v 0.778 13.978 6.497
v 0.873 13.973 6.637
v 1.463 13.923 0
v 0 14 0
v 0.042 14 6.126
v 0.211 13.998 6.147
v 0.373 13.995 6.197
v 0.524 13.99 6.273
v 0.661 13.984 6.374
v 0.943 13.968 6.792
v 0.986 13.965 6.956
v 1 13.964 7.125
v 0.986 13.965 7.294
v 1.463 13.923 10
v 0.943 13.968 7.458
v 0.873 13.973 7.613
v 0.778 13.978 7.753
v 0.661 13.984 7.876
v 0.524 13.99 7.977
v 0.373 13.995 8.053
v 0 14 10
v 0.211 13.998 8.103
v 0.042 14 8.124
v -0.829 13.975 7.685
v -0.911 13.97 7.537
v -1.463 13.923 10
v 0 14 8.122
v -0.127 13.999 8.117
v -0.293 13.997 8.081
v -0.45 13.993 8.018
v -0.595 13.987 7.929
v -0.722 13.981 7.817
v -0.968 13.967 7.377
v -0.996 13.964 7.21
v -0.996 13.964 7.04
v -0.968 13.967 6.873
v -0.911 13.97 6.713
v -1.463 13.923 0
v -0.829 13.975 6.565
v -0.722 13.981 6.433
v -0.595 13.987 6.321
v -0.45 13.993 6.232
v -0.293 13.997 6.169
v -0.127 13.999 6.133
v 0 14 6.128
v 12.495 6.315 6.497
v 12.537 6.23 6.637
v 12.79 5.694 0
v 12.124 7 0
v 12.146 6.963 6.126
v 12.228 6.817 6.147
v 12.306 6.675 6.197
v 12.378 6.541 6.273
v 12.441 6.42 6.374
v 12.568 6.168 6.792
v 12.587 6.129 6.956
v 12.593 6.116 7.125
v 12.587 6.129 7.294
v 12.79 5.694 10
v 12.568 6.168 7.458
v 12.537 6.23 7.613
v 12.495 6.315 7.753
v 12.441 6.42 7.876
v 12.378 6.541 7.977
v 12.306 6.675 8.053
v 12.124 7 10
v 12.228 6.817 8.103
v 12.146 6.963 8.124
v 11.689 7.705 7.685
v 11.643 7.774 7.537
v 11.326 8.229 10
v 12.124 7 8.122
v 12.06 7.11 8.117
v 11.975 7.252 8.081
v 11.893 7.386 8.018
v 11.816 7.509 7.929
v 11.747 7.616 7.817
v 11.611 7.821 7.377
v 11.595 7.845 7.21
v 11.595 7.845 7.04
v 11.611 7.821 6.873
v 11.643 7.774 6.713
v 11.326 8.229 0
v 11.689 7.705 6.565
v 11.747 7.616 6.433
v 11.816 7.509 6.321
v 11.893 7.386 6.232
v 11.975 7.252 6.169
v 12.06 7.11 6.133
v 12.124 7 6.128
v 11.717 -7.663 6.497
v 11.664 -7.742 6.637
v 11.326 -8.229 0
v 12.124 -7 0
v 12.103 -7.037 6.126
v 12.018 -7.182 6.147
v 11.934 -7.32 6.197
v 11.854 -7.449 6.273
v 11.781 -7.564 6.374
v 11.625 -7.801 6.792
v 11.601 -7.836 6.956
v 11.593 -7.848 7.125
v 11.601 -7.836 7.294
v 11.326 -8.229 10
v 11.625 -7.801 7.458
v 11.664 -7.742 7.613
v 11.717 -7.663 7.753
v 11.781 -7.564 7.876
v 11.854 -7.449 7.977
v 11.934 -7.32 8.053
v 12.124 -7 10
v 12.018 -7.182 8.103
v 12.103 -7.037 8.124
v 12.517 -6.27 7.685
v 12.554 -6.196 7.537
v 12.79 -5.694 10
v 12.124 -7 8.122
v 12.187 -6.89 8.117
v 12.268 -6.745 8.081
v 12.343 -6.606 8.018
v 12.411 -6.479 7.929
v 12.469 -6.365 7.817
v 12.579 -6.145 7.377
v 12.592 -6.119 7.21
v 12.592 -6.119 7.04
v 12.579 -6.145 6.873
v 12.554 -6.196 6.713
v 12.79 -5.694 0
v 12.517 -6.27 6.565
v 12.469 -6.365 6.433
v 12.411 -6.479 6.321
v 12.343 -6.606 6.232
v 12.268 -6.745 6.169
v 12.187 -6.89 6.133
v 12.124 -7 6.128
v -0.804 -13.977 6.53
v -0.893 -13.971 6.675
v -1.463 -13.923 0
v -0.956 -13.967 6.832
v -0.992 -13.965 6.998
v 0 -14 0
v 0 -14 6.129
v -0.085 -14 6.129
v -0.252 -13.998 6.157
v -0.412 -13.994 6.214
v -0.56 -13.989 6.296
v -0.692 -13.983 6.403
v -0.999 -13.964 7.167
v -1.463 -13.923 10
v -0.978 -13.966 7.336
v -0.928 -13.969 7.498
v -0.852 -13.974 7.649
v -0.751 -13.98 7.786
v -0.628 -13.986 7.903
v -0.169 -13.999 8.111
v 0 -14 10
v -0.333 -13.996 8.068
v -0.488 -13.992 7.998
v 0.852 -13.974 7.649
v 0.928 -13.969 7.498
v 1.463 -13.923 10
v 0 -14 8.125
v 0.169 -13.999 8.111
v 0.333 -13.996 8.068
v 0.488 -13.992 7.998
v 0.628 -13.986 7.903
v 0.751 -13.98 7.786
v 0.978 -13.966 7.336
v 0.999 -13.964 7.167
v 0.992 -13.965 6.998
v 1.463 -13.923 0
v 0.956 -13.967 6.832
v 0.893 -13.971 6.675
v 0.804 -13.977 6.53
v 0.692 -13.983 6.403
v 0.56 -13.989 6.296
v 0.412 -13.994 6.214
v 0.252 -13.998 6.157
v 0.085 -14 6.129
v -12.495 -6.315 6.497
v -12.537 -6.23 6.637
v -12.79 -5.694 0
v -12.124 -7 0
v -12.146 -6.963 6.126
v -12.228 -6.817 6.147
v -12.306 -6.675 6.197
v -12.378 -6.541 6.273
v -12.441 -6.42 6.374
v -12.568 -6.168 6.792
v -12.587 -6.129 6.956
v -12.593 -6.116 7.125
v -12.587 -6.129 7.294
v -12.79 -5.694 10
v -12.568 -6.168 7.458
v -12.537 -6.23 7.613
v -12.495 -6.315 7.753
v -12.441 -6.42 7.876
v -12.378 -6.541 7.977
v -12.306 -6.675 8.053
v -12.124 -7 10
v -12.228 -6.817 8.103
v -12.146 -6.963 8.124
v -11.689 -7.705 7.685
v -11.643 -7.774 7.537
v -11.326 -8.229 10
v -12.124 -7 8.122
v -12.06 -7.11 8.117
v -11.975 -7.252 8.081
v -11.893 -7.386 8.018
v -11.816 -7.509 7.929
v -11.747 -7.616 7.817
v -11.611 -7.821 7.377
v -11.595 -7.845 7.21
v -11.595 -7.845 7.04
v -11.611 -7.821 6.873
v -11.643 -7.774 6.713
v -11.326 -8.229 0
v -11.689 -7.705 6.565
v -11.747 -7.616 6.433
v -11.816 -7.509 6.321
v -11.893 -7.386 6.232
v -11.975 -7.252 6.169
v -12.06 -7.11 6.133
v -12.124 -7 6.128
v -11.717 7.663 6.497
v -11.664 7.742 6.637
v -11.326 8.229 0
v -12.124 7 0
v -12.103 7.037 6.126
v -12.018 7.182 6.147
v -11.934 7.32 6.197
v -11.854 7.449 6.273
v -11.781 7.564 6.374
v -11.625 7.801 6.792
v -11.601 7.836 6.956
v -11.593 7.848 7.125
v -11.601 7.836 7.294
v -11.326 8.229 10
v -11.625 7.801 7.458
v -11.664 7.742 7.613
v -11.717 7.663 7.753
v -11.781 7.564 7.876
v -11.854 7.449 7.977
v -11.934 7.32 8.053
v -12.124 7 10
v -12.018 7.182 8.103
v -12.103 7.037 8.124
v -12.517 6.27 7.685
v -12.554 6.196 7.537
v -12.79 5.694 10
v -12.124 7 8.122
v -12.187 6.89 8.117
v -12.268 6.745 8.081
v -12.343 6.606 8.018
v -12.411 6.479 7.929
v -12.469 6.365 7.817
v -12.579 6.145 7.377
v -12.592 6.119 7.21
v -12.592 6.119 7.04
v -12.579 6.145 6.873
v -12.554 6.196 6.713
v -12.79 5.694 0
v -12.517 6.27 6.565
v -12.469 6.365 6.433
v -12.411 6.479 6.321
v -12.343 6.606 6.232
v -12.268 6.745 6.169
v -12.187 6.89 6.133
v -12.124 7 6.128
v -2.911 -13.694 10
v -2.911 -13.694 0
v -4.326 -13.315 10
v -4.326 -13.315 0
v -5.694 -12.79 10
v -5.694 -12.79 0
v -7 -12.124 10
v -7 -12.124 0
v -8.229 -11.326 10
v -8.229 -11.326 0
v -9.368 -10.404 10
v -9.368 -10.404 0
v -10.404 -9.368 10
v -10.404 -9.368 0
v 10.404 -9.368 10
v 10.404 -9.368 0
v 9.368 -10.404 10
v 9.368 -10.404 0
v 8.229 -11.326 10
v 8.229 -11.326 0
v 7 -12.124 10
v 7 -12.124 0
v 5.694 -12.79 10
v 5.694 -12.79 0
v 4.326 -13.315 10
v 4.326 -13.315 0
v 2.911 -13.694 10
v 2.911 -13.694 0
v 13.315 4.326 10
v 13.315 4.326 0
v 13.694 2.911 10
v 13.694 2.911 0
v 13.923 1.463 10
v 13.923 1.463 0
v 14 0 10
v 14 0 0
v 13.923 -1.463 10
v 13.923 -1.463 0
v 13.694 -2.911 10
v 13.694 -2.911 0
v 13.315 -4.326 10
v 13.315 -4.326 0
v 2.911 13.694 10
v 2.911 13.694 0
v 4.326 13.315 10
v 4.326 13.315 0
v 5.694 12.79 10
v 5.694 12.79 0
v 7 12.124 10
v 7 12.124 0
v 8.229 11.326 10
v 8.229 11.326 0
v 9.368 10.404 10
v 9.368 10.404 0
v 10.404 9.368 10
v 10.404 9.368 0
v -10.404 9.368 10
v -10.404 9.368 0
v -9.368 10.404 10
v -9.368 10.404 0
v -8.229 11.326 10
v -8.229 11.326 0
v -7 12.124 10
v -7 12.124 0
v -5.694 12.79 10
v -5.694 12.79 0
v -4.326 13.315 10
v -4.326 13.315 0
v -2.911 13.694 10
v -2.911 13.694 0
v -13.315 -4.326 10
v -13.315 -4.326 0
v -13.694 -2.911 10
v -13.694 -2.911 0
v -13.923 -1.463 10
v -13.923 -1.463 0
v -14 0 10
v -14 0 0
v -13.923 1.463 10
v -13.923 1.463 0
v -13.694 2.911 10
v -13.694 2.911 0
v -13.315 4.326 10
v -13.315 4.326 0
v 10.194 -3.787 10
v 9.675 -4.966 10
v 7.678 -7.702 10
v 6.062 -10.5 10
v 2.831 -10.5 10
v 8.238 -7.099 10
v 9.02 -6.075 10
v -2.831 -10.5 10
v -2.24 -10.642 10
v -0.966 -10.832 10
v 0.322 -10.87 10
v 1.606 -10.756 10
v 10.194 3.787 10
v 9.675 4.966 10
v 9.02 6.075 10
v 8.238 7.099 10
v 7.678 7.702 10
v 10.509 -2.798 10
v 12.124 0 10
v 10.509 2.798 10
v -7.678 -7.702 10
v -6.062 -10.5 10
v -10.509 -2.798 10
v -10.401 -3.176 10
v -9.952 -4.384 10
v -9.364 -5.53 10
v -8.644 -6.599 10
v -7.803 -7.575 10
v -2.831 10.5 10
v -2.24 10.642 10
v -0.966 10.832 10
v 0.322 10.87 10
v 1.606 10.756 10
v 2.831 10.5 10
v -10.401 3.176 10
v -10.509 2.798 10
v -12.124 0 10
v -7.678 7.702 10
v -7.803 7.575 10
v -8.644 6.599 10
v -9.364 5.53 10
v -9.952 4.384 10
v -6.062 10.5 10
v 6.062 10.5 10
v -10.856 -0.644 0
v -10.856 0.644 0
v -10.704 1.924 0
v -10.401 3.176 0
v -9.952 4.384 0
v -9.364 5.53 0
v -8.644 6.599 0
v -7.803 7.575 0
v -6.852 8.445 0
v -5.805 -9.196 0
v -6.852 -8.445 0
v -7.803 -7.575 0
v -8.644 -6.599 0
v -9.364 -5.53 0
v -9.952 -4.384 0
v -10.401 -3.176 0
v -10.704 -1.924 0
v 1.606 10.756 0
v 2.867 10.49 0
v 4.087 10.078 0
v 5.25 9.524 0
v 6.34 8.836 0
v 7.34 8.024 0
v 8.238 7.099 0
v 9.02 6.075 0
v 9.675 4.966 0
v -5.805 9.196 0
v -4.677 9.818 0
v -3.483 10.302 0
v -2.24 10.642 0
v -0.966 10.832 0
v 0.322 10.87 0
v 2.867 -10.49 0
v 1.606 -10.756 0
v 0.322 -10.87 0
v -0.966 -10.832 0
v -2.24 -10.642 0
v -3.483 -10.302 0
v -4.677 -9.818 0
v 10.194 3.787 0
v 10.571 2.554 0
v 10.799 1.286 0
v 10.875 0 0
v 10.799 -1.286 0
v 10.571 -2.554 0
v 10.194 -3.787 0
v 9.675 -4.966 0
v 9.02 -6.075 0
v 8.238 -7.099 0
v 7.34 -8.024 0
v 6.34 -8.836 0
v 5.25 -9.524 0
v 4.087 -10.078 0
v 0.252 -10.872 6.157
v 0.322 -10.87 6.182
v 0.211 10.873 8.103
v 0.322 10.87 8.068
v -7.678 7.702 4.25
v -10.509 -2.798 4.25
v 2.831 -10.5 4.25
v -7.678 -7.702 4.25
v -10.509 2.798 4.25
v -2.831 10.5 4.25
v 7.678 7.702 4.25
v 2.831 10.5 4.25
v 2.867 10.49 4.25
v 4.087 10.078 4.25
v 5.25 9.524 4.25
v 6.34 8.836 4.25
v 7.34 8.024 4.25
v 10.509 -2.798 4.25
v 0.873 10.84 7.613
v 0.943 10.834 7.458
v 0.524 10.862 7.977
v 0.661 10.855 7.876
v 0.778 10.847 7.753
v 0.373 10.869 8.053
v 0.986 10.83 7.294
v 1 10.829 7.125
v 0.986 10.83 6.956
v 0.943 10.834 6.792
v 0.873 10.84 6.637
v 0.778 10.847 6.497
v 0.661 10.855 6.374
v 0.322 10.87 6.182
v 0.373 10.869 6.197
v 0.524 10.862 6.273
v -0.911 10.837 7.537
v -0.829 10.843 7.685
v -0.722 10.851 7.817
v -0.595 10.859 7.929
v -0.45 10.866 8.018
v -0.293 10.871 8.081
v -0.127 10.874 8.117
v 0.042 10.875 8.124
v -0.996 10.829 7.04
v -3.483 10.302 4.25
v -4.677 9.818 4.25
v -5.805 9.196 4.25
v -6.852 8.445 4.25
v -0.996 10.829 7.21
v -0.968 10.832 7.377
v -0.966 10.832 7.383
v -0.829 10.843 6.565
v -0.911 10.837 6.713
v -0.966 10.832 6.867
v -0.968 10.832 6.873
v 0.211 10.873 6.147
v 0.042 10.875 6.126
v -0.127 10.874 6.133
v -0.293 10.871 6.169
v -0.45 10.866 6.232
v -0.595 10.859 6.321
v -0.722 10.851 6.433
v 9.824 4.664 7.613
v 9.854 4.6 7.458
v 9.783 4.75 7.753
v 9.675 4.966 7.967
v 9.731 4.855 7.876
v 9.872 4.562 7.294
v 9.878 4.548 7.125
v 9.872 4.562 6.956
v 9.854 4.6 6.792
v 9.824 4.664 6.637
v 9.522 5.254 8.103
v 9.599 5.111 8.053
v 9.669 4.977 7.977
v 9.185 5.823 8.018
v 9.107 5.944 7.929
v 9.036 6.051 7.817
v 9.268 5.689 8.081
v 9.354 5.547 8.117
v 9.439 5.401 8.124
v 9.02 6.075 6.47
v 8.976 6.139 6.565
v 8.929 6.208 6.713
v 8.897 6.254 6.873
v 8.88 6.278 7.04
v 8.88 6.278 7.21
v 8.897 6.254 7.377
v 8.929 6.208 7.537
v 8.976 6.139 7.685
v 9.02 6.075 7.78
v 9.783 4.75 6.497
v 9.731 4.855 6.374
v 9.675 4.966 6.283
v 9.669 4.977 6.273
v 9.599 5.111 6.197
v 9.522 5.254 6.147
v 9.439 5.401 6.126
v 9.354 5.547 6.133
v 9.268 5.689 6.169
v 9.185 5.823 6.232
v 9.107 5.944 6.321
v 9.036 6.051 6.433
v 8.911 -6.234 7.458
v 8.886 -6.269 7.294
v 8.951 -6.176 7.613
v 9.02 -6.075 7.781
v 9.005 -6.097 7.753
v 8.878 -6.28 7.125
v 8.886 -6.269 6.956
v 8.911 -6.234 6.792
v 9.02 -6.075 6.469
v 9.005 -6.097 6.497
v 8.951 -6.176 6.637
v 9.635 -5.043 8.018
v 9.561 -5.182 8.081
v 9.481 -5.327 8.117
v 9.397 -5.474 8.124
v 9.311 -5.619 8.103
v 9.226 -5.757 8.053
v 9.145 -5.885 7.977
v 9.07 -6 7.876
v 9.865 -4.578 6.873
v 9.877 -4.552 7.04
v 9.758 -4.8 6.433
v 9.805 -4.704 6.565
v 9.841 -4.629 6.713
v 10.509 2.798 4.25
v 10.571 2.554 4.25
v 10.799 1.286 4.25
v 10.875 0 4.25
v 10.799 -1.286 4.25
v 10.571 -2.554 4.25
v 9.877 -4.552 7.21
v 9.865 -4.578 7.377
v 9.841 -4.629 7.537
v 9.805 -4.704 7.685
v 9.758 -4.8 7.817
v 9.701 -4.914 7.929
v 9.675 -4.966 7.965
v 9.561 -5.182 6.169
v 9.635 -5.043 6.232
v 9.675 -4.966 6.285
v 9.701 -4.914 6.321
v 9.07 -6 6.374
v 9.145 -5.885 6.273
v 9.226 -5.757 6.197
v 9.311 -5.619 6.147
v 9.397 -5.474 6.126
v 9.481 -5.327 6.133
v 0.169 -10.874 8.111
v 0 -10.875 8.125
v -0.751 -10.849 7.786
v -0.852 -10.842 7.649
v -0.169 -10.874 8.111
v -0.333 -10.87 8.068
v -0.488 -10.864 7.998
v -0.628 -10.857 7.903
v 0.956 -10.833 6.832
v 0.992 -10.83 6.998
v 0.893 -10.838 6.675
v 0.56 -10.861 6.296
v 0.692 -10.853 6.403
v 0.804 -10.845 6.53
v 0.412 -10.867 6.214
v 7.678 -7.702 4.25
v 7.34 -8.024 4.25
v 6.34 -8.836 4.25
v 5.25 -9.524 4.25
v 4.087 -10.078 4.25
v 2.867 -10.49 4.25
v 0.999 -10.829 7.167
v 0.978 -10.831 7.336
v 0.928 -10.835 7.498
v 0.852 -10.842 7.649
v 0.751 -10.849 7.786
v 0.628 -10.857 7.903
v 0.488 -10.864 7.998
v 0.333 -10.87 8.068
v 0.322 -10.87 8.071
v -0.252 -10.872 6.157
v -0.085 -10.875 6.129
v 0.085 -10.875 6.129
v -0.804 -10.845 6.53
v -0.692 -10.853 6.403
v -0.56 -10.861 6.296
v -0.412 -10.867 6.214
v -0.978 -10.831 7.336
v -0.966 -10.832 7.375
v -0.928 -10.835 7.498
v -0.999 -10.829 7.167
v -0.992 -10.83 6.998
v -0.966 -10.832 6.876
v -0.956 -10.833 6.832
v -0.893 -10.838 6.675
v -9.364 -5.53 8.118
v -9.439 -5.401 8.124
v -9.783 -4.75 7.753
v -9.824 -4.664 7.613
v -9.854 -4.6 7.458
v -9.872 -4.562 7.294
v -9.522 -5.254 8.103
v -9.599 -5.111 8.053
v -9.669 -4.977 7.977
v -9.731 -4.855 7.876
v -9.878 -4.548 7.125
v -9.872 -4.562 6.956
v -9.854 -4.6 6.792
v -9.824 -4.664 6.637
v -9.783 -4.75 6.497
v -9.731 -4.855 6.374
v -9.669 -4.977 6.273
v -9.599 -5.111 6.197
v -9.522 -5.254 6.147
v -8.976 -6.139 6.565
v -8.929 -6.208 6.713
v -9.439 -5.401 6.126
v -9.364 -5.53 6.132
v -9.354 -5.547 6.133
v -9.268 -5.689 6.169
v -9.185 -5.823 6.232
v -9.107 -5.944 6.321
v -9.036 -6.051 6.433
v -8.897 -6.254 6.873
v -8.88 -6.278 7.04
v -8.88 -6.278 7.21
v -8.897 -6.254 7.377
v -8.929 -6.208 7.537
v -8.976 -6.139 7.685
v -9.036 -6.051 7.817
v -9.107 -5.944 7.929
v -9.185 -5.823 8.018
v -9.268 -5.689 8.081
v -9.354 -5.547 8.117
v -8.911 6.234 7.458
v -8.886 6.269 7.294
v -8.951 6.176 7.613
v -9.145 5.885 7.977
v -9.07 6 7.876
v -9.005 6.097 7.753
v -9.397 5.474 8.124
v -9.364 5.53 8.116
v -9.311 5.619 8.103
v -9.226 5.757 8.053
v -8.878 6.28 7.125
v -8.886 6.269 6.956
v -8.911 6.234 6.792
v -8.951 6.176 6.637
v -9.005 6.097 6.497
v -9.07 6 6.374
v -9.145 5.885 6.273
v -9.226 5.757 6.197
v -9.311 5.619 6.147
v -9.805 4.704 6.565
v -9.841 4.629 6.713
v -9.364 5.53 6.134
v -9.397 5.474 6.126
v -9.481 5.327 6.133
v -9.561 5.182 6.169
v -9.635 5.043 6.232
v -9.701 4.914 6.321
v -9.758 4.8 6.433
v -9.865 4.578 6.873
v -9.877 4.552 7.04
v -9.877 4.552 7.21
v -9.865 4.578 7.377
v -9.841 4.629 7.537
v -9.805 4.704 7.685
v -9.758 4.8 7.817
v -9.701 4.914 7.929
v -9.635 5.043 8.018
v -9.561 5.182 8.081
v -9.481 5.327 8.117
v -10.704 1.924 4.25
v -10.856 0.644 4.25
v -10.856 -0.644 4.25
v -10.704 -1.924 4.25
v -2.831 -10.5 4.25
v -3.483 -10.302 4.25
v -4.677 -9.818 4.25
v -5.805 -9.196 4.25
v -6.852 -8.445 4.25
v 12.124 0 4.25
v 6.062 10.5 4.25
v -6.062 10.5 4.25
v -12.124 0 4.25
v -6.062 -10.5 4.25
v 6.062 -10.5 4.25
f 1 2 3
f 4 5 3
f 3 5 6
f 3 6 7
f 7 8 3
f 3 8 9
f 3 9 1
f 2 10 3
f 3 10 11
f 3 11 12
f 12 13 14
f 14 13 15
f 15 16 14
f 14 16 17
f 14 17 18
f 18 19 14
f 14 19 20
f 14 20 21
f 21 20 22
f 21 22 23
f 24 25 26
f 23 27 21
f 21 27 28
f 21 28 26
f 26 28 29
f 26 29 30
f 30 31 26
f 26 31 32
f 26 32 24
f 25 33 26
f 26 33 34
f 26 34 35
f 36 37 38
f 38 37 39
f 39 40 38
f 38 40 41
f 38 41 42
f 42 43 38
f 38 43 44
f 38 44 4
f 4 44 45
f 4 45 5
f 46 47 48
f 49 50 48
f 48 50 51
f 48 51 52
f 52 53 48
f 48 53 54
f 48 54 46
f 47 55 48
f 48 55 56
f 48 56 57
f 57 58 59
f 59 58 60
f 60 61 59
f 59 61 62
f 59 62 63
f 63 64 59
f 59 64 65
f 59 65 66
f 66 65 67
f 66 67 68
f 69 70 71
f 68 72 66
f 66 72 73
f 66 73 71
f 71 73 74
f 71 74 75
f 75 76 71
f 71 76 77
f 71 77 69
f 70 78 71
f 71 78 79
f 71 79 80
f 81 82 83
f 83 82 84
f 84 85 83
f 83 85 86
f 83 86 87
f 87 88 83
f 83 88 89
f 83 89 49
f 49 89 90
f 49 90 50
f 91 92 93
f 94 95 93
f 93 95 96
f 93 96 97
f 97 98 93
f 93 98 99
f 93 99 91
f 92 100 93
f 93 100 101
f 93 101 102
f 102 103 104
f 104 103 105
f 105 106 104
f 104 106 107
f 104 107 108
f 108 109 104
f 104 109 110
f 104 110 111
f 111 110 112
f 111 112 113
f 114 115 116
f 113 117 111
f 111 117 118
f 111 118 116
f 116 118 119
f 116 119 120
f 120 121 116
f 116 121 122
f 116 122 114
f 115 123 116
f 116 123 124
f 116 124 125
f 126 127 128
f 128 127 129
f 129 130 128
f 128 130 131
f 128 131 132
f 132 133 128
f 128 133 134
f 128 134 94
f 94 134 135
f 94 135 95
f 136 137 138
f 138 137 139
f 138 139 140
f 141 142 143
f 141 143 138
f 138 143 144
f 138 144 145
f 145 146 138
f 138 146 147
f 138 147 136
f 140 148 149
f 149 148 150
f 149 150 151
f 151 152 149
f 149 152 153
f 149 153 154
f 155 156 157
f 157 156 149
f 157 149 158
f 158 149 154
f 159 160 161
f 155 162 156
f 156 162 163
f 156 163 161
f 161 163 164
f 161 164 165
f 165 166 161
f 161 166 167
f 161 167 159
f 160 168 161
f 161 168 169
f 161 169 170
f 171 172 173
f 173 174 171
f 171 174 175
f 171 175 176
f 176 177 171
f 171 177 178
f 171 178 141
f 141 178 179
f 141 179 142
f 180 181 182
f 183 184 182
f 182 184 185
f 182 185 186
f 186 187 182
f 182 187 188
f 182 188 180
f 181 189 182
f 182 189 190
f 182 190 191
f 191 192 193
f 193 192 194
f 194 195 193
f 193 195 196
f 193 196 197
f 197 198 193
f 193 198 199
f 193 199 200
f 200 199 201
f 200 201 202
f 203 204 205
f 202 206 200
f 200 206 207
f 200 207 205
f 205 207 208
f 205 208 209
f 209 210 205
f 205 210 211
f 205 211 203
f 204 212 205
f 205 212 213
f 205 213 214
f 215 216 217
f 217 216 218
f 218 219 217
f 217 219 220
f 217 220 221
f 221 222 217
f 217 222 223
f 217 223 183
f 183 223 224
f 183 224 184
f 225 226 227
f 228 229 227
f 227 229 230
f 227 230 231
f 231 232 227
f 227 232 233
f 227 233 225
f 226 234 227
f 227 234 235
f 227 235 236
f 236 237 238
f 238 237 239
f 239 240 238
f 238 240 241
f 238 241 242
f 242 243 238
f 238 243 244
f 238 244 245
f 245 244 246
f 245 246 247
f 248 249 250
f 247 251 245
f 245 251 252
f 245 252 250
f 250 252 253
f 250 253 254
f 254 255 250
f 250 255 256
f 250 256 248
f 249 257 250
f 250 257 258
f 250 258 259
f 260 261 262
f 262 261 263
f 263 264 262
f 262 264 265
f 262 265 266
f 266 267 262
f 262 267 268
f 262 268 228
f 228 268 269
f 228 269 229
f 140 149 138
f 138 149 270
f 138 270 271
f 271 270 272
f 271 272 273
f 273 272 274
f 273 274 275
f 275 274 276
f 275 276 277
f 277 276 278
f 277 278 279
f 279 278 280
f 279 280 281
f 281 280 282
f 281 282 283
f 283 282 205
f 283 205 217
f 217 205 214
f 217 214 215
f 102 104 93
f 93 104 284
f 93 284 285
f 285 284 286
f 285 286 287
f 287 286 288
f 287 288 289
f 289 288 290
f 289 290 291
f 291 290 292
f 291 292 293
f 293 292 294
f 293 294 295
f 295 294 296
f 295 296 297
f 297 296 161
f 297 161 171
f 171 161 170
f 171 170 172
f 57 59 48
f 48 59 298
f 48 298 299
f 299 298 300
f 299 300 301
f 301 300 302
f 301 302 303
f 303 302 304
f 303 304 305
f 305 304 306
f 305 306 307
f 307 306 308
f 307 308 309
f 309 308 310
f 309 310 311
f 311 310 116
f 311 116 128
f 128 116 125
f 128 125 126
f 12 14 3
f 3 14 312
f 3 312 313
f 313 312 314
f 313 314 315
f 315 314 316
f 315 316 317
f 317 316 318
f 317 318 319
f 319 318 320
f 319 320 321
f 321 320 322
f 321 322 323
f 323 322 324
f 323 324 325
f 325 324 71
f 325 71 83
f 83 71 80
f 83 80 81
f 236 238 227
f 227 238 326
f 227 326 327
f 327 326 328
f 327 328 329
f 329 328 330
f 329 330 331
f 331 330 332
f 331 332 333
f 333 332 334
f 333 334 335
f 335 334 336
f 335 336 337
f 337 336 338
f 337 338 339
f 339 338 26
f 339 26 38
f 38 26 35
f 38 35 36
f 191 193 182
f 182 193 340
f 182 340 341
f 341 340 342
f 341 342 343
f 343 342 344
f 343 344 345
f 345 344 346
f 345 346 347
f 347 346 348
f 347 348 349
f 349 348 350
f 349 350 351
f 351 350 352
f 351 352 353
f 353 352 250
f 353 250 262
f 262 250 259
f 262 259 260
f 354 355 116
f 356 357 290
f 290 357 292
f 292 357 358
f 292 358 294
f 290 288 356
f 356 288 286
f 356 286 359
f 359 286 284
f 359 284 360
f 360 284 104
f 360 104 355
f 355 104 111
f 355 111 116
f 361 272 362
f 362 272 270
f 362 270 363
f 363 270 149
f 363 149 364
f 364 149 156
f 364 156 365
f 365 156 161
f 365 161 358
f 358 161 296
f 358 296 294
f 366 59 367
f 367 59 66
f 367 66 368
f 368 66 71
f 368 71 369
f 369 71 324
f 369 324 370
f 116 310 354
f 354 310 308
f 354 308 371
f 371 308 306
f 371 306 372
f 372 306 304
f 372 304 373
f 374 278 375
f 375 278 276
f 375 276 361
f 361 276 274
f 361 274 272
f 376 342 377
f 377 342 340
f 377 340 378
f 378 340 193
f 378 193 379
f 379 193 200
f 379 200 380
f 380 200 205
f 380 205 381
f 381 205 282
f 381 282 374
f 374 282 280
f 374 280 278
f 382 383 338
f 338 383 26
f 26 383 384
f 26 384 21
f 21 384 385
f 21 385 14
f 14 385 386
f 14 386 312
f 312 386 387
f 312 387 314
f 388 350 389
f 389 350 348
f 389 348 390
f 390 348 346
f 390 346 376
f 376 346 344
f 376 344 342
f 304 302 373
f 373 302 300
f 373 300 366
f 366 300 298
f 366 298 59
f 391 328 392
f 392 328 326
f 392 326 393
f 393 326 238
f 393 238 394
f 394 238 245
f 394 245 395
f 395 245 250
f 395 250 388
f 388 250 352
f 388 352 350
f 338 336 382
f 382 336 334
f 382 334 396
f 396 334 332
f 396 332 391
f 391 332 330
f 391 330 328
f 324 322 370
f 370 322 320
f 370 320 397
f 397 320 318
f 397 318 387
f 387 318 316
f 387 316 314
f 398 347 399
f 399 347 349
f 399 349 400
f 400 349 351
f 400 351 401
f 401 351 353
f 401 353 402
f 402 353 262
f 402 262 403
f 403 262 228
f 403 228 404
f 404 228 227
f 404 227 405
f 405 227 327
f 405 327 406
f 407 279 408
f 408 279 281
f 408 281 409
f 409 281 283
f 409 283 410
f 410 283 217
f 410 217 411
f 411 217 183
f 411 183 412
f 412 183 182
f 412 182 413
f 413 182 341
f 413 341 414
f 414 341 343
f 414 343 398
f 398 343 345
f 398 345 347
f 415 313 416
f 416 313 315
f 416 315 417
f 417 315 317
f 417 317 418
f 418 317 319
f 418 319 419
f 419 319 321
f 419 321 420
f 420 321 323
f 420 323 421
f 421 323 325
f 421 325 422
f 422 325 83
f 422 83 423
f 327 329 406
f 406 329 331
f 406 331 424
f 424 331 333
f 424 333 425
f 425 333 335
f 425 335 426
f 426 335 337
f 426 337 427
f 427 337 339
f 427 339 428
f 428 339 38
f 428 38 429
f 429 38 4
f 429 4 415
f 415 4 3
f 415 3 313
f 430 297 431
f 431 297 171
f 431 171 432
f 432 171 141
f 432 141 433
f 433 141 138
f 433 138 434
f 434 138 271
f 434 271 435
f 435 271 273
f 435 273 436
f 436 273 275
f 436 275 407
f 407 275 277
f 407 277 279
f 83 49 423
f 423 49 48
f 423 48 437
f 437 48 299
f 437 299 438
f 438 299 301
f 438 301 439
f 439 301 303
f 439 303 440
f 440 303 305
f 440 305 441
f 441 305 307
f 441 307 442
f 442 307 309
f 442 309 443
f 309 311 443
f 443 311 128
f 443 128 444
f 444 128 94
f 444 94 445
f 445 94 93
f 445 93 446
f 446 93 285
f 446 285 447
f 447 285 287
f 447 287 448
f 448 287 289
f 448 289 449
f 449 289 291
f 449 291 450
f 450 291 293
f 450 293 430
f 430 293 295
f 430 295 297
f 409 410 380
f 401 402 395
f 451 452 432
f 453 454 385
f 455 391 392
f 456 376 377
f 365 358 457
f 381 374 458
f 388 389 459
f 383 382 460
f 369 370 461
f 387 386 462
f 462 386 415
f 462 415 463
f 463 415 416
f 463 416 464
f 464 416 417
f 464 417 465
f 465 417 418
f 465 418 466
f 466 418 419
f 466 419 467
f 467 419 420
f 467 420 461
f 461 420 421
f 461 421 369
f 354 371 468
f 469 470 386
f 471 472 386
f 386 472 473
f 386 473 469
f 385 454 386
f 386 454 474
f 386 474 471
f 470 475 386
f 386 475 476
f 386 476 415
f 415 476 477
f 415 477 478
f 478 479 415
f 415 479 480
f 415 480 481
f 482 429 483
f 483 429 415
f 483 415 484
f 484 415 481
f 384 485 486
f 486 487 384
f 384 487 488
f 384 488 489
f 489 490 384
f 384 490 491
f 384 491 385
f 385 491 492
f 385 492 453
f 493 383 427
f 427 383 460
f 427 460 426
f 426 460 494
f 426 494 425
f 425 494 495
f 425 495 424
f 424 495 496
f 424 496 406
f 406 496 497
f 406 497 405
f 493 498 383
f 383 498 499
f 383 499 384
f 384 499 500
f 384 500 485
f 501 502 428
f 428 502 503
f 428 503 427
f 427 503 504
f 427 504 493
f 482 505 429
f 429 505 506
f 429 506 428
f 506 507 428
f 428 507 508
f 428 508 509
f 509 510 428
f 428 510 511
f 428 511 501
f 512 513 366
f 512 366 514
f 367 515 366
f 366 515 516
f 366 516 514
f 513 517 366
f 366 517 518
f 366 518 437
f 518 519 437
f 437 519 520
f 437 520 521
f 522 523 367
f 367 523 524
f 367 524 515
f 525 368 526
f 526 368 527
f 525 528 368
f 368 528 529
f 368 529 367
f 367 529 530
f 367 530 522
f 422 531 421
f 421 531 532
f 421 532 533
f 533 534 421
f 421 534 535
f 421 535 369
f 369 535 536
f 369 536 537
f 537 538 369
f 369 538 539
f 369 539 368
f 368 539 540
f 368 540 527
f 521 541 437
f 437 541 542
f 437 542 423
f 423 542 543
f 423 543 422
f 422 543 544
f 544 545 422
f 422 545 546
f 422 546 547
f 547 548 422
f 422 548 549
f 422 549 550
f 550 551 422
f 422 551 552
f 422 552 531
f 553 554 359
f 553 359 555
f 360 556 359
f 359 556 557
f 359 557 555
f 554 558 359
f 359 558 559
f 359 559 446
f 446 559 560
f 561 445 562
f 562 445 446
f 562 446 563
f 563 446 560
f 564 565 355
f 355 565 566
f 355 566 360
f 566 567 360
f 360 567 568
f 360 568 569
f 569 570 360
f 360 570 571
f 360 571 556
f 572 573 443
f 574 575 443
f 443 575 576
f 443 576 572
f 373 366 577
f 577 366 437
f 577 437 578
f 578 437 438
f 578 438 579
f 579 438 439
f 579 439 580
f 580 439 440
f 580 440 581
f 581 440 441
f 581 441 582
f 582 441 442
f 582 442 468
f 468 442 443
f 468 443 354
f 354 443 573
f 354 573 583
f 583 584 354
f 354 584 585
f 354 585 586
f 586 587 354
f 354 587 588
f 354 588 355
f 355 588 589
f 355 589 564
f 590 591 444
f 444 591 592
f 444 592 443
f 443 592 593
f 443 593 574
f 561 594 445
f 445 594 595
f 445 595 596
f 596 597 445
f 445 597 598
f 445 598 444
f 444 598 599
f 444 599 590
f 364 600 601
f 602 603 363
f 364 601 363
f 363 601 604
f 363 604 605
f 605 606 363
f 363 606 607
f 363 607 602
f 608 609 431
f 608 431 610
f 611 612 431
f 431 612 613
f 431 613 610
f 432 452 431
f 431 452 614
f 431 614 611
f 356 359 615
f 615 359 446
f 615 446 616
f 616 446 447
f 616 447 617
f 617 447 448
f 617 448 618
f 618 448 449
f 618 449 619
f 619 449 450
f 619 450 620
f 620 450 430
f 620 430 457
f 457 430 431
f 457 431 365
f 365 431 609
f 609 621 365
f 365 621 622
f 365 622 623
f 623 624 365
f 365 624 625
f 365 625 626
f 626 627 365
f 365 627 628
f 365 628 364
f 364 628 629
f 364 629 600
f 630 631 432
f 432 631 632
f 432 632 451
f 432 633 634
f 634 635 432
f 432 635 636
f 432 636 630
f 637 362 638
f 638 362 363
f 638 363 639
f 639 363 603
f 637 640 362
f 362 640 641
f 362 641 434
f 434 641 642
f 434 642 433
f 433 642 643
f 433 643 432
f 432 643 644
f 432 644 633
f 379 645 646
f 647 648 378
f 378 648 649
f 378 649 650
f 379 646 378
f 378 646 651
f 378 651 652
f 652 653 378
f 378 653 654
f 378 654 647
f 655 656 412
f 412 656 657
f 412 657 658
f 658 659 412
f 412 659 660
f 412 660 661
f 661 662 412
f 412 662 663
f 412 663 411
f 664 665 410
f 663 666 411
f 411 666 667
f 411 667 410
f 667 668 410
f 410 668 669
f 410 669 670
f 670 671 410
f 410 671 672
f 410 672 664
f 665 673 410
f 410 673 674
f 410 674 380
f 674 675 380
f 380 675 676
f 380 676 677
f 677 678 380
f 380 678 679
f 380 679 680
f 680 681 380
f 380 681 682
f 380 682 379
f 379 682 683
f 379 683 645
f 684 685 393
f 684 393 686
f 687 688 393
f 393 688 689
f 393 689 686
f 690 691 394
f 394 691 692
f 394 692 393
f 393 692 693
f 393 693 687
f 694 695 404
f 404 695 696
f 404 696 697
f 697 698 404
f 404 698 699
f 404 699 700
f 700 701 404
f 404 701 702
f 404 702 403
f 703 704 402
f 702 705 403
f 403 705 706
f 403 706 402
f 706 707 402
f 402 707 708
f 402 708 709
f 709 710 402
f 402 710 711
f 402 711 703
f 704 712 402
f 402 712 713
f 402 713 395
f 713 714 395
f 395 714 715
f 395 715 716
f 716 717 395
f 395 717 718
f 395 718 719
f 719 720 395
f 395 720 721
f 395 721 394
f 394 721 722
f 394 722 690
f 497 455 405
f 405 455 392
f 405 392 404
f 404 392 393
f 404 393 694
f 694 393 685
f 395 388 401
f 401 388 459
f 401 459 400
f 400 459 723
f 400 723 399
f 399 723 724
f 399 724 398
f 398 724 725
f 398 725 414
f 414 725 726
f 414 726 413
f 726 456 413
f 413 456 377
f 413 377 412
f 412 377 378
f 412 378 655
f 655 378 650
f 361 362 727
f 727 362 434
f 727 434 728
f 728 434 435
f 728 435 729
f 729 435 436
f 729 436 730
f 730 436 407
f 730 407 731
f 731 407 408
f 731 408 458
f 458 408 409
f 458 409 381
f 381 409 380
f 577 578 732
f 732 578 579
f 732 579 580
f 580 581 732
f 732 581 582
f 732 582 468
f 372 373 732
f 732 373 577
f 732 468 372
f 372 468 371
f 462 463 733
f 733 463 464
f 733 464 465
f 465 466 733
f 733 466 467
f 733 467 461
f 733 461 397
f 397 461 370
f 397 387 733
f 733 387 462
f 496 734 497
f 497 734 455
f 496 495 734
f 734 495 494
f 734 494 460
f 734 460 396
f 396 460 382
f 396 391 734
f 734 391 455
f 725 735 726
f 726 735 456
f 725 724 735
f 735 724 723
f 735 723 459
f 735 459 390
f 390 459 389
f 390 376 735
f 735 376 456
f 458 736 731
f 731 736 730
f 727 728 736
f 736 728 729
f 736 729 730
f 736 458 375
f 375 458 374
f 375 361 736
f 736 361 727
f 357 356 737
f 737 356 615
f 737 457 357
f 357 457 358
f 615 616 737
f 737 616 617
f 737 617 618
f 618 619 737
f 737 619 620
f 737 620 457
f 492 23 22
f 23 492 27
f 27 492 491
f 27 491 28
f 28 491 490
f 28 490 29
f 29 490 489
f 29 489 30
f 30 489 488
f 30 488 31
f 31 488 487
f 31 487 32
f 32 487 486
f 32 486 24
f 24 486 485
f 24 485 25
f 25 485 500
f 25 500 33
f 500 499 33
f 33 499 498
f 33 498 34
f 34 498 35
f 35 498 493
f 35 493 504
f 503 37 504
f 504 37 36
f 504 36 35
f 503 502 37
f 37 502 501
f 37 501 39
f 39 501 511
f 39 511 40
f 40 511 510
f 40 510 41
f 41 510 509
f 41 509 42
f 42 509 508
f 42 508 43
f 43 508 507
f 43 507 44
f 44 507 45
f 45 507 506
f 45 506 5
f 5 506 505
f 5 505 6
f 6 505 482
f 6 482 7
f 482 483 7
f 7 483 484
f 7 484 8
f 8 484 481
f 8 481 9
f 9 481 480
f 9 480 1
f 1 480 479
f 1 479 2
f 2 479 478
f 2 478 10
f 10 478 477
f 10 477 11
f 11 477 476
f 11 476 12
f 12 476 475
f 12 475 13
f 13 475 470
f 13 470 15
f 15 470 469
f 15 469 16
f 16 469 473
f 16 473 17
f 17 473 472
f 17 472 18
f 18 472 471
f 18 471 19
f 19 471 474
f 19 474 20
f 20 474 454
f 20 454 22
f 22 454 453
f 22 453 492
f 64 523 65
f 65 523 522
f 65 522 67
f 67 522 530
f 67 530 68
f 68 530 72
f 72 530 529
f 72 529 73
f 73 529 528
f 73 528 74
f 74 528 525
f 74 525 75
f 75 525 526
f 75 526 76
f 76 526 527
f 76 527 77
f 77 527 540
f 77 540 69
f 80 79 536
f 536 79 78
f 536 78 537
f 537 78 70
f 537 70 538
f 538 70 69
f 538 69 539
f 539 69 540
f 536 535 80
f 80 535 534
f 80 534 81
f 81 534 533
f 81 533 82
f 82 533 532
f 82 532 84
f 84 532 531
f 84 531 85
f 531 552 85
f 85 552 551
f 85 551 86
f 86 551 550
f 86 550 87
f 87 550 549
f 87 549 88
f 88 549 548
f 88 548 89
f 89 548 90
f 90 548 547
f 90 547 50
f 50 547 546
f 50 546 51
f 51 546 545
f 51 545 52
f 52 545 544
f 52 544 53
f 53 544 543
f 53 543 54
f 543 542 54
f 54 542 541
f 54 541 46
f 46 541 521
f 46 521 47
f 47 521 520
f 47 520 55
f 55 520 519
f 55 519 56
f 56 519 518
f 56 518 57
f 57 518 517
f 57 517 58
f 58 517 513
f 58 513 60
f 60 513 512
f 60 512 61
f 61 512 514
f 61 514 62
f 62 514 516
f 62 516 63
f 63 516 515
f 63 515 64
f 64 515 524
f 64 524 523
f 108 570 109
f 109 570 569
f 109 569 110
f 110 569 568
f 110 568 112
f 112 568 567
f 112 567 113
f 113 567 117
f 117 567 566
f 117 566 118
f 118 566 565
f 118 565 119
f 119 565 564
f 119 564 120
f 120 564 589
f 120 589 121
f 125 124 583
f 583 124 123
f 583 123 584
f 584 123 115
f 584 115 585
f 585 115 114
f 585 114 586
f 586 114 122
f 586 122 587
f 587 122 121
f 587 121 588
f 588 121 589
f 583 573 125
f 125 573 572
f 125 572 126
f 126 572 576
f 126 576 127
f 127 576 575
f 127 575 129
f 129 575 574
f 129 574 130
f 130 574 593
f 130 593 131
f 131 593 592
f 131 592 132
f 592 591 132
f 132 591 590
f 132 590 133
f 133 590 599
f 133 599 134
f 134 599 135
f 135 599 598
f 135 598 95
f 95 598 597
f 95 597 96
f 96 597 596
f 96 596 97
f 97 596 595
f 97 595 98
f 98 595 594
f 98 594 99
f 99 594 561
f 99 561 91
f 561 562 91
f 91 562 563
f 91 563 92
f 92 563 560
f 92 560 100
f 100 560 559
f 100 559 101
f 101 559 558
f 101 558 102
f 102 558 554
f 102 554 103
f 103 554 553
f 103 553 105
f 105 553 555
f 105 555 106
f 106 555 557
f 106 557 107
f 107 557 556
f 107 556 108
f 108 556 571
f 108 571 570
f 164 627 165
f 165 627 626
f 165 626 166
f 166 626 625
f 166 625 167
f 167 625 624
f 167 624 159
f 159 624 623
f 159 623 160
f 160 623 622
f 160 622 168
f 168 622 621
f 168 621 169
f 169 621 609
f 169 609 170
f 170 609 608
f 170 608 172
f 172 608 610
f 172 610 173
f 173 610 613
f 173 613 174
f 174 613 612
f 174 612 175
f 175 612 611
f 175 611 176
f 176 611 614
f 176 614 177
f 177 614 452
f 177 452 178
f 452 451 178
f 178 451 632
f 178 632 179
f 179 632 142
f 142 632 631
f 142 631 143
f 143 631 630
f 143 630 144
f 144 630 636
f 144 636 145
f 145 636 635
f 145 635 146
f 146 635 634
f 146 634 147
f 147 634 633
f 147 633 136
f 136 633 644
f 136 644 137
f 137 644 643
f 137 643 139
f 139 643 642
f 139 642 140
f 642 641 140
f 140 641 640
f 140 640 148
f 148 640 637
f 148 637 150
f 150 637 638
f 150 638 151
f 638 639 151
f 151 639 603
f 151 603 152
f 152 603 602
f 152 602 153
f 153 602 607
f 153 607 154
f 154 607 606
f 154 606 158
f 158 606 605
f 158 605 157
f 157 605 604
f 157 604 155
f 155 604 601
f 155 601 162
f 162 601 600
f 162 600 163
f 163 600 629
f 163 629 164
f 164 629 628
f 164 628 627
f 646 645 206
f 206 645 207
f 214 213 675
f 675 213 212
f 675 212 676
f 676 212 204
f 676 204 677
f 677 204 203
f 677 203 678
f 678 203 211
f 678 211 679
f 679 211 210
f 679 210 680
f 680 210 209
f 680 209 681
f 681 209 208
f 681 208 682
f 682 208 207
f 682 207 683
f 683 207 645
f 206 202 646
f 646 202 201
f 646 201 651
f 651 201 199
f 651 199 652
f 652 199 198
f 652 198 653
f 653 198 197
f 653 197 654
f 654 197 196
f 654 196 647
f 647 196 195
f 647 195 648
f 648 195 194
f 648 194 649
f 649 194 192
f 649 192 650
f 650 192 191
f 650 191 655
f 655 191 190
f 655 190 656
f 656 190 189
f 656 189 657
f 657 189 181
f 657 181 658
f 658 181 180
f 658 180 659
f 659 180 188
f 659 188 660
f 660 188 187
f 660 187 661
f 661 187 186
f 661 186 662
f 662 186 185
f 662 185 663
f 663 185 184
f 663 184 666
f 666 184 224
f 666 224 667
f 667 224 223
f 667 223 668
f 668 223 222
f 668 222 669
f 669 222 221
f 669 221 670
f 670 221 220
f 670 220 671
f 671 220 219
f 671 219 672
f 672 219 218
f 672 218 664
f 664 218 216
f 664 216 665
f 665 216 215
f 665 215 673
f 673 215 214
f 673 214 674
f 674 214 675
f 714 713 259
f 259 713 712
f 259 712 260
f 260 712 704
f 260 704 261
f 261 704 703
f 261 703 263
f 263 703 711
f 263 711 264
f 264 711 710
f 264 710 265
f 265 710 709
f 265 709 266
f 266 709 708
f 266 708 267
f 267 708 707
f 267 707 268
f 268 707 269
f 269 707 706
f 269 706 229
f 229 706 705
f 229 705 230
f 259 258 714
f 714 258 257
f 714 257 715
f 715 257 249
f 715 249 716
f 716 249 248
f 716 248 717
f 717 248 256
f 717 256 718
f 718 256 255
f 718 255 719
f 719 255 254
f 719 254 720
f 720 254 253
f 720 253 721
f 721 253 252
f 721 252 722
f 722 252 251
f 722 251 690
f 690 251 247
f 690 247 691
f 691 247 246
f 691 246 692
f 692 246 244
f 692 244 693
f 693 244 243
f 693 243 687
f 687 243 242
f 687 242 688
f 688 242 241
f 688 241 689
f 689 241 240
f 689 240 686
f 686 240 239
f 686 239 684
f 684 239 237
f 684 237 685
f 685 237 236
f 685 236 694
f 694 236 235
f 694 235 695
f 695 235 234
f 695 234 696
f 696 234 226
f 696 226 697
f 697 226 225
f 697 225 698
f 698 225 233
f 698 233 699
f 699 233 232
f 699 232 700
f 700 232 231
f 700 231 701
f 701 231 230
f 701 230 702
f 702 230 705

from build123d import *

# Parameters (mm, degrees)
SKETCH1_R               = 14
BOSS_EXTRUDE1_DEPTH     = 10
CUT_EXTRUDE1_REACH      = 24.181
SKETCH2_R               = 10.875
CUT_EXTRUDE2_DEPTH      = 5.75
CUT_EXTRUDE3_REACH      = 31.937
CUT_EXTRUDE3_END_RADIUS = 14
SKETCH4_R               = 1
CUT_EXTRUDE4_REACH      = 33.684
CUT_EXTRUDE4_END_RADIUS = 14
SKETCH5_R               = 1
CUT_EXTRUDE5_REACH      = 33.684
CUT_EXTRUDE5_END_RADIUS = 14
SKETCH6_R               = 1
CUT_EXTRUDE6_REACH      = 31.937
CUT_EXTRUDE6_END_RADIUS = 14
SKETCH7_R               = 1
CUT_EXTRUDE7_REACH      = 33.684
CUT_EXTRUDE7_END_RADIUS = 14
SKETCH8_R               = 1
CUT_EXTRUDE8_REACH      = 33.684
CUT_EXTRUDE8_END_RADIUS = 14
SKETCH9_R               = 1


with BuildPart() as part:
    # Sketch1 → Boss-Extrude1 (new body)
    with BuildSketch(Plane.XY):
        Circle(SKETCH1_R)
    extrude(amount=BOSS_EXTRUDE1_DEPTH)

    # Sketch2 → Cut-Extrude1 (cut, up to next)
    with BuildSketch(Plane.XY.offset(10), mode=Mode.PRIVATE) as cut_extrude1_sk1:
        Circle(SKETCH2_R)
    cut_extrude1_tool1 = extrude(cut_extrude1_sk1.sketch, amount=-CUT_EXTRUDE1_REACH, mode=Mode.PRIVATE) & part.part
    add(cut_extrude1_tool1.solids().sort_by_distance((0, 0, 10))[0], mode=Mode.SUBTRACT)

    # Sketch3 → Cut-Extrude2 (cut)
    with BuildSketch(Plane.XY.offset(10)):
        Polygon((12.124355653, 0), (6.062177826, 10.5), (-6.062177826, 10.5), (-12.124355653, 0), (-6.062177826, -10.5), (6.062177826, -10.5), align=None)
    extrude(amount=-CUT_EXTRUDE2_DEPTH, mode=Mode.SUBTRACT)

    # Cut-Extrude3: up to this cylinder (the profile starts inside it)
    cut_extrude3_end = Plane(origin=(0, 0, 7.125), z_dir=(0, 0, -1)) * Cylinder(CUT_EXTRUDE3_END_RADIUS, 92.874, mode=Mode.PRIVATE)
    # Sketch4 → Cut-Extrude3 (cut, up to the surface)
    with BuildSketch(Plane(origin=(0, 10.5, 0), x_dir=(-1, 0, 0), z_dir=(0, -1, 0)), mode=Mode.PRIVATE) as cut_extrude3_sk1:
        with Locations(Location((0, -7.125, 0), (0, 0, 180))):
            Circle(SKETCH4_R)
    cut_extrude3_tool1 = extrude(cut_extrude3_sk1.sketch, amount=-CUT_EXTRUDE3_REACH, mode=Mode.PRIVATE) & cut_extrude3_end
    add(cut_extrude3_tool1.solids().sort_by_distance((0, 10.5, 7.125))[0], mode=Mode.SUBTRACT)

    # Cut-Extrude4: up to this cylinder (the profile starts inside it)
    cut_extrude4_end = Plane(origin=(0, 0, 7.125), z_dir=(0, 0, -1)) * Cylinder(CUT_EXTRUDE4_END_RADIUS, 96.368, mode=Mode.PRIVATE)
    # Sketch5 → Cut-Extrude4 (cut, up to the surface)
    with BuildSketch(Plane(origin=(9.09326674, 5.25, 0), x_dir=(0, 0, 1), z_dir=(-0.8660254037844386, -0.4999999999999999, 0)), mode=Mode.PRIVATE) as cut_extrude4_sk1:
        with Locations(Location((7.125, 0, 0), (0, 0, 270))):
            Circle(SKETCH5_R)
    cut_extrude4_tool1 = extrude(cut_extrude4_sk1.sketch, amount=-CUT_EXTRUDE4_REACH, mode=Mode.PRIVATE) & cut_extrude4_end
    add(cut_extrude4_tool1.solids().sort_by_distance((9.093267, 5.25, 7.125))[0], mode=Mode.SUBTRACT)

    # Cut-Extrude5: up to this cylinder (the profile starts inside it)
    cut_extrude5_end = Plane(origin=(0, 0, 7.125), z_dir=(0, 0, -1)) * Cylinder(CUT_EXTRUDE5_END_RADIUS, 96.368, mode=Mode.PRIVATE)
    # Sketch6 → Cut-Extrude5 (cut, up to the surface)
    with BuildSketch(Plane(origin=(9.09326674, -5.25, 0), x_dir=(0, 0, 1), z_dir=(-0.8660254037844386, 0.5, 0)), mode=Mode.PRIVATE) as cut_extrude5_sk1:
        with Locations(Location((7.125, 0, 0), (0, 0, 270))):
            Circle(SKETCH6_R)
    cut_extrude5_tool1 = extrude(cut_extrude5_sk1.sketch, amount=-CUT_EXTRUDE5_REACH, mode=Mode.PRIVATE) & cut_extrude5_end
    add(cut_extrude5_tool1.solids().sort_by_distance((9.093267, -5.25, 7.125))[0], mode=Mode.SUBTRACT)

    # Cut-Extrude6: up to this cylinder (the profile starts inside it)
    cut_extrude6_end = Plane(origin=(0, 0, 7.125), z_dir=(0, 0, -1)) * Cylinder(CUT_EXTRUDE6_END_RADIUS, 92.874, mode=Mode.PRIVATE)
    # Sketch7 → Cut-Extrude6 (cut, up to the surface)
    with BuildSketch(Plane(origin=(0, -10.5, 0), x_dir=(1, 0, 0), z_dir=(0, 1, 0)), mode=Mode.PRIVATE) as cut_extrude6_sk1:
        with Locations((0, -7.125)):
            Circle(SKETCH7_R)
    cut_extrude6_tool1 = extrude(cut_extrude6_sk1.sketch, amount=-CUT_EXTRUDE6_REACH, mode=Mode.PRIVATE) & cut_extrude6_end
    add(cut_extrude6_tool1.solids().sort_by_distance((0, -10.5, 7.125))[0], mode=Mode.SUBTRACT)

    # Cut-Extrude7: up to this cylinder (the profile starts inside it)
    cut_extrude7_end = Plane(origin=(0, 0, 7.125), z_dir=(0, 0, -1)) * Cylinder(CUT_EXTRUDE7_END_RADIUS, 96.368, mode=Mode.PRIVATE)
    # Sketch8 → Cut-Extrude7 (cut, up to the surface)
    with BuildSketch(Plane(origin=(-9.09326674, -5.25, 0), x_dir=(0, 0, -1), z_dir=(0.8660254037844385, 0.5000000000000003, 0)), mode=Mode.PRIVATE) as cut_extrude7_sk1:
        with Locations(Location((-7.125, 0, 0), (0, 0, 270))):
            Circle(SKETCH8_R)
    cut_extrude7_tool1 = extrude(cut_extrude7_sk1.sketch, amount=-CUT_EXTRUDE7_REACH, mode=Mode.PRIVATE) & cut_extrude7_end
    add(cut_extrude7_tool1.solids().sort_by_distance((-9.093267, -5.25, 7.125))[0], mode=Mode.SUBTRACT)

    # Cut-Extrude8: up to this cylinder (the profile starts inside it)
    cut_extrude8_end = Plane(origin=(0, 0, 7.125), z_dir=(0, 0, -1)) * Cylinder(CUT_EXTRUDE8_END_RADIUS, 96.368, mode=Mode.PRIVATE)
    # Sketch9 → Cut-Extrude8 (cut, up to the surface)
    with BuildSketch(Plane(origin=(-9.09326674, 5.25, 0), x_dir=(0, 0, -1), z_dir=(0.8660254037844388, -0.49999999999999983, 0)), mode=Mode.PRIVATE) as cut_extrude8_sk1:
        with Locations(Location((-7.125, 0, 0), (0, 0, 270))):
            Circle(SKETCH9_R)
    cut_extrude8_tool1 = extrude(cut_extrude8_sk1.sketch, amount=-CUT_EXTRUDE8_REACH, mode=Mode.PRIVATE) & cut_extrude8_end
    add(cut_extrude8_tool1.solids().sort_by_distance((-9.093267, 5.25, 7.125))[0], mode=Mode.SUBTRACT)


solid = part.part
